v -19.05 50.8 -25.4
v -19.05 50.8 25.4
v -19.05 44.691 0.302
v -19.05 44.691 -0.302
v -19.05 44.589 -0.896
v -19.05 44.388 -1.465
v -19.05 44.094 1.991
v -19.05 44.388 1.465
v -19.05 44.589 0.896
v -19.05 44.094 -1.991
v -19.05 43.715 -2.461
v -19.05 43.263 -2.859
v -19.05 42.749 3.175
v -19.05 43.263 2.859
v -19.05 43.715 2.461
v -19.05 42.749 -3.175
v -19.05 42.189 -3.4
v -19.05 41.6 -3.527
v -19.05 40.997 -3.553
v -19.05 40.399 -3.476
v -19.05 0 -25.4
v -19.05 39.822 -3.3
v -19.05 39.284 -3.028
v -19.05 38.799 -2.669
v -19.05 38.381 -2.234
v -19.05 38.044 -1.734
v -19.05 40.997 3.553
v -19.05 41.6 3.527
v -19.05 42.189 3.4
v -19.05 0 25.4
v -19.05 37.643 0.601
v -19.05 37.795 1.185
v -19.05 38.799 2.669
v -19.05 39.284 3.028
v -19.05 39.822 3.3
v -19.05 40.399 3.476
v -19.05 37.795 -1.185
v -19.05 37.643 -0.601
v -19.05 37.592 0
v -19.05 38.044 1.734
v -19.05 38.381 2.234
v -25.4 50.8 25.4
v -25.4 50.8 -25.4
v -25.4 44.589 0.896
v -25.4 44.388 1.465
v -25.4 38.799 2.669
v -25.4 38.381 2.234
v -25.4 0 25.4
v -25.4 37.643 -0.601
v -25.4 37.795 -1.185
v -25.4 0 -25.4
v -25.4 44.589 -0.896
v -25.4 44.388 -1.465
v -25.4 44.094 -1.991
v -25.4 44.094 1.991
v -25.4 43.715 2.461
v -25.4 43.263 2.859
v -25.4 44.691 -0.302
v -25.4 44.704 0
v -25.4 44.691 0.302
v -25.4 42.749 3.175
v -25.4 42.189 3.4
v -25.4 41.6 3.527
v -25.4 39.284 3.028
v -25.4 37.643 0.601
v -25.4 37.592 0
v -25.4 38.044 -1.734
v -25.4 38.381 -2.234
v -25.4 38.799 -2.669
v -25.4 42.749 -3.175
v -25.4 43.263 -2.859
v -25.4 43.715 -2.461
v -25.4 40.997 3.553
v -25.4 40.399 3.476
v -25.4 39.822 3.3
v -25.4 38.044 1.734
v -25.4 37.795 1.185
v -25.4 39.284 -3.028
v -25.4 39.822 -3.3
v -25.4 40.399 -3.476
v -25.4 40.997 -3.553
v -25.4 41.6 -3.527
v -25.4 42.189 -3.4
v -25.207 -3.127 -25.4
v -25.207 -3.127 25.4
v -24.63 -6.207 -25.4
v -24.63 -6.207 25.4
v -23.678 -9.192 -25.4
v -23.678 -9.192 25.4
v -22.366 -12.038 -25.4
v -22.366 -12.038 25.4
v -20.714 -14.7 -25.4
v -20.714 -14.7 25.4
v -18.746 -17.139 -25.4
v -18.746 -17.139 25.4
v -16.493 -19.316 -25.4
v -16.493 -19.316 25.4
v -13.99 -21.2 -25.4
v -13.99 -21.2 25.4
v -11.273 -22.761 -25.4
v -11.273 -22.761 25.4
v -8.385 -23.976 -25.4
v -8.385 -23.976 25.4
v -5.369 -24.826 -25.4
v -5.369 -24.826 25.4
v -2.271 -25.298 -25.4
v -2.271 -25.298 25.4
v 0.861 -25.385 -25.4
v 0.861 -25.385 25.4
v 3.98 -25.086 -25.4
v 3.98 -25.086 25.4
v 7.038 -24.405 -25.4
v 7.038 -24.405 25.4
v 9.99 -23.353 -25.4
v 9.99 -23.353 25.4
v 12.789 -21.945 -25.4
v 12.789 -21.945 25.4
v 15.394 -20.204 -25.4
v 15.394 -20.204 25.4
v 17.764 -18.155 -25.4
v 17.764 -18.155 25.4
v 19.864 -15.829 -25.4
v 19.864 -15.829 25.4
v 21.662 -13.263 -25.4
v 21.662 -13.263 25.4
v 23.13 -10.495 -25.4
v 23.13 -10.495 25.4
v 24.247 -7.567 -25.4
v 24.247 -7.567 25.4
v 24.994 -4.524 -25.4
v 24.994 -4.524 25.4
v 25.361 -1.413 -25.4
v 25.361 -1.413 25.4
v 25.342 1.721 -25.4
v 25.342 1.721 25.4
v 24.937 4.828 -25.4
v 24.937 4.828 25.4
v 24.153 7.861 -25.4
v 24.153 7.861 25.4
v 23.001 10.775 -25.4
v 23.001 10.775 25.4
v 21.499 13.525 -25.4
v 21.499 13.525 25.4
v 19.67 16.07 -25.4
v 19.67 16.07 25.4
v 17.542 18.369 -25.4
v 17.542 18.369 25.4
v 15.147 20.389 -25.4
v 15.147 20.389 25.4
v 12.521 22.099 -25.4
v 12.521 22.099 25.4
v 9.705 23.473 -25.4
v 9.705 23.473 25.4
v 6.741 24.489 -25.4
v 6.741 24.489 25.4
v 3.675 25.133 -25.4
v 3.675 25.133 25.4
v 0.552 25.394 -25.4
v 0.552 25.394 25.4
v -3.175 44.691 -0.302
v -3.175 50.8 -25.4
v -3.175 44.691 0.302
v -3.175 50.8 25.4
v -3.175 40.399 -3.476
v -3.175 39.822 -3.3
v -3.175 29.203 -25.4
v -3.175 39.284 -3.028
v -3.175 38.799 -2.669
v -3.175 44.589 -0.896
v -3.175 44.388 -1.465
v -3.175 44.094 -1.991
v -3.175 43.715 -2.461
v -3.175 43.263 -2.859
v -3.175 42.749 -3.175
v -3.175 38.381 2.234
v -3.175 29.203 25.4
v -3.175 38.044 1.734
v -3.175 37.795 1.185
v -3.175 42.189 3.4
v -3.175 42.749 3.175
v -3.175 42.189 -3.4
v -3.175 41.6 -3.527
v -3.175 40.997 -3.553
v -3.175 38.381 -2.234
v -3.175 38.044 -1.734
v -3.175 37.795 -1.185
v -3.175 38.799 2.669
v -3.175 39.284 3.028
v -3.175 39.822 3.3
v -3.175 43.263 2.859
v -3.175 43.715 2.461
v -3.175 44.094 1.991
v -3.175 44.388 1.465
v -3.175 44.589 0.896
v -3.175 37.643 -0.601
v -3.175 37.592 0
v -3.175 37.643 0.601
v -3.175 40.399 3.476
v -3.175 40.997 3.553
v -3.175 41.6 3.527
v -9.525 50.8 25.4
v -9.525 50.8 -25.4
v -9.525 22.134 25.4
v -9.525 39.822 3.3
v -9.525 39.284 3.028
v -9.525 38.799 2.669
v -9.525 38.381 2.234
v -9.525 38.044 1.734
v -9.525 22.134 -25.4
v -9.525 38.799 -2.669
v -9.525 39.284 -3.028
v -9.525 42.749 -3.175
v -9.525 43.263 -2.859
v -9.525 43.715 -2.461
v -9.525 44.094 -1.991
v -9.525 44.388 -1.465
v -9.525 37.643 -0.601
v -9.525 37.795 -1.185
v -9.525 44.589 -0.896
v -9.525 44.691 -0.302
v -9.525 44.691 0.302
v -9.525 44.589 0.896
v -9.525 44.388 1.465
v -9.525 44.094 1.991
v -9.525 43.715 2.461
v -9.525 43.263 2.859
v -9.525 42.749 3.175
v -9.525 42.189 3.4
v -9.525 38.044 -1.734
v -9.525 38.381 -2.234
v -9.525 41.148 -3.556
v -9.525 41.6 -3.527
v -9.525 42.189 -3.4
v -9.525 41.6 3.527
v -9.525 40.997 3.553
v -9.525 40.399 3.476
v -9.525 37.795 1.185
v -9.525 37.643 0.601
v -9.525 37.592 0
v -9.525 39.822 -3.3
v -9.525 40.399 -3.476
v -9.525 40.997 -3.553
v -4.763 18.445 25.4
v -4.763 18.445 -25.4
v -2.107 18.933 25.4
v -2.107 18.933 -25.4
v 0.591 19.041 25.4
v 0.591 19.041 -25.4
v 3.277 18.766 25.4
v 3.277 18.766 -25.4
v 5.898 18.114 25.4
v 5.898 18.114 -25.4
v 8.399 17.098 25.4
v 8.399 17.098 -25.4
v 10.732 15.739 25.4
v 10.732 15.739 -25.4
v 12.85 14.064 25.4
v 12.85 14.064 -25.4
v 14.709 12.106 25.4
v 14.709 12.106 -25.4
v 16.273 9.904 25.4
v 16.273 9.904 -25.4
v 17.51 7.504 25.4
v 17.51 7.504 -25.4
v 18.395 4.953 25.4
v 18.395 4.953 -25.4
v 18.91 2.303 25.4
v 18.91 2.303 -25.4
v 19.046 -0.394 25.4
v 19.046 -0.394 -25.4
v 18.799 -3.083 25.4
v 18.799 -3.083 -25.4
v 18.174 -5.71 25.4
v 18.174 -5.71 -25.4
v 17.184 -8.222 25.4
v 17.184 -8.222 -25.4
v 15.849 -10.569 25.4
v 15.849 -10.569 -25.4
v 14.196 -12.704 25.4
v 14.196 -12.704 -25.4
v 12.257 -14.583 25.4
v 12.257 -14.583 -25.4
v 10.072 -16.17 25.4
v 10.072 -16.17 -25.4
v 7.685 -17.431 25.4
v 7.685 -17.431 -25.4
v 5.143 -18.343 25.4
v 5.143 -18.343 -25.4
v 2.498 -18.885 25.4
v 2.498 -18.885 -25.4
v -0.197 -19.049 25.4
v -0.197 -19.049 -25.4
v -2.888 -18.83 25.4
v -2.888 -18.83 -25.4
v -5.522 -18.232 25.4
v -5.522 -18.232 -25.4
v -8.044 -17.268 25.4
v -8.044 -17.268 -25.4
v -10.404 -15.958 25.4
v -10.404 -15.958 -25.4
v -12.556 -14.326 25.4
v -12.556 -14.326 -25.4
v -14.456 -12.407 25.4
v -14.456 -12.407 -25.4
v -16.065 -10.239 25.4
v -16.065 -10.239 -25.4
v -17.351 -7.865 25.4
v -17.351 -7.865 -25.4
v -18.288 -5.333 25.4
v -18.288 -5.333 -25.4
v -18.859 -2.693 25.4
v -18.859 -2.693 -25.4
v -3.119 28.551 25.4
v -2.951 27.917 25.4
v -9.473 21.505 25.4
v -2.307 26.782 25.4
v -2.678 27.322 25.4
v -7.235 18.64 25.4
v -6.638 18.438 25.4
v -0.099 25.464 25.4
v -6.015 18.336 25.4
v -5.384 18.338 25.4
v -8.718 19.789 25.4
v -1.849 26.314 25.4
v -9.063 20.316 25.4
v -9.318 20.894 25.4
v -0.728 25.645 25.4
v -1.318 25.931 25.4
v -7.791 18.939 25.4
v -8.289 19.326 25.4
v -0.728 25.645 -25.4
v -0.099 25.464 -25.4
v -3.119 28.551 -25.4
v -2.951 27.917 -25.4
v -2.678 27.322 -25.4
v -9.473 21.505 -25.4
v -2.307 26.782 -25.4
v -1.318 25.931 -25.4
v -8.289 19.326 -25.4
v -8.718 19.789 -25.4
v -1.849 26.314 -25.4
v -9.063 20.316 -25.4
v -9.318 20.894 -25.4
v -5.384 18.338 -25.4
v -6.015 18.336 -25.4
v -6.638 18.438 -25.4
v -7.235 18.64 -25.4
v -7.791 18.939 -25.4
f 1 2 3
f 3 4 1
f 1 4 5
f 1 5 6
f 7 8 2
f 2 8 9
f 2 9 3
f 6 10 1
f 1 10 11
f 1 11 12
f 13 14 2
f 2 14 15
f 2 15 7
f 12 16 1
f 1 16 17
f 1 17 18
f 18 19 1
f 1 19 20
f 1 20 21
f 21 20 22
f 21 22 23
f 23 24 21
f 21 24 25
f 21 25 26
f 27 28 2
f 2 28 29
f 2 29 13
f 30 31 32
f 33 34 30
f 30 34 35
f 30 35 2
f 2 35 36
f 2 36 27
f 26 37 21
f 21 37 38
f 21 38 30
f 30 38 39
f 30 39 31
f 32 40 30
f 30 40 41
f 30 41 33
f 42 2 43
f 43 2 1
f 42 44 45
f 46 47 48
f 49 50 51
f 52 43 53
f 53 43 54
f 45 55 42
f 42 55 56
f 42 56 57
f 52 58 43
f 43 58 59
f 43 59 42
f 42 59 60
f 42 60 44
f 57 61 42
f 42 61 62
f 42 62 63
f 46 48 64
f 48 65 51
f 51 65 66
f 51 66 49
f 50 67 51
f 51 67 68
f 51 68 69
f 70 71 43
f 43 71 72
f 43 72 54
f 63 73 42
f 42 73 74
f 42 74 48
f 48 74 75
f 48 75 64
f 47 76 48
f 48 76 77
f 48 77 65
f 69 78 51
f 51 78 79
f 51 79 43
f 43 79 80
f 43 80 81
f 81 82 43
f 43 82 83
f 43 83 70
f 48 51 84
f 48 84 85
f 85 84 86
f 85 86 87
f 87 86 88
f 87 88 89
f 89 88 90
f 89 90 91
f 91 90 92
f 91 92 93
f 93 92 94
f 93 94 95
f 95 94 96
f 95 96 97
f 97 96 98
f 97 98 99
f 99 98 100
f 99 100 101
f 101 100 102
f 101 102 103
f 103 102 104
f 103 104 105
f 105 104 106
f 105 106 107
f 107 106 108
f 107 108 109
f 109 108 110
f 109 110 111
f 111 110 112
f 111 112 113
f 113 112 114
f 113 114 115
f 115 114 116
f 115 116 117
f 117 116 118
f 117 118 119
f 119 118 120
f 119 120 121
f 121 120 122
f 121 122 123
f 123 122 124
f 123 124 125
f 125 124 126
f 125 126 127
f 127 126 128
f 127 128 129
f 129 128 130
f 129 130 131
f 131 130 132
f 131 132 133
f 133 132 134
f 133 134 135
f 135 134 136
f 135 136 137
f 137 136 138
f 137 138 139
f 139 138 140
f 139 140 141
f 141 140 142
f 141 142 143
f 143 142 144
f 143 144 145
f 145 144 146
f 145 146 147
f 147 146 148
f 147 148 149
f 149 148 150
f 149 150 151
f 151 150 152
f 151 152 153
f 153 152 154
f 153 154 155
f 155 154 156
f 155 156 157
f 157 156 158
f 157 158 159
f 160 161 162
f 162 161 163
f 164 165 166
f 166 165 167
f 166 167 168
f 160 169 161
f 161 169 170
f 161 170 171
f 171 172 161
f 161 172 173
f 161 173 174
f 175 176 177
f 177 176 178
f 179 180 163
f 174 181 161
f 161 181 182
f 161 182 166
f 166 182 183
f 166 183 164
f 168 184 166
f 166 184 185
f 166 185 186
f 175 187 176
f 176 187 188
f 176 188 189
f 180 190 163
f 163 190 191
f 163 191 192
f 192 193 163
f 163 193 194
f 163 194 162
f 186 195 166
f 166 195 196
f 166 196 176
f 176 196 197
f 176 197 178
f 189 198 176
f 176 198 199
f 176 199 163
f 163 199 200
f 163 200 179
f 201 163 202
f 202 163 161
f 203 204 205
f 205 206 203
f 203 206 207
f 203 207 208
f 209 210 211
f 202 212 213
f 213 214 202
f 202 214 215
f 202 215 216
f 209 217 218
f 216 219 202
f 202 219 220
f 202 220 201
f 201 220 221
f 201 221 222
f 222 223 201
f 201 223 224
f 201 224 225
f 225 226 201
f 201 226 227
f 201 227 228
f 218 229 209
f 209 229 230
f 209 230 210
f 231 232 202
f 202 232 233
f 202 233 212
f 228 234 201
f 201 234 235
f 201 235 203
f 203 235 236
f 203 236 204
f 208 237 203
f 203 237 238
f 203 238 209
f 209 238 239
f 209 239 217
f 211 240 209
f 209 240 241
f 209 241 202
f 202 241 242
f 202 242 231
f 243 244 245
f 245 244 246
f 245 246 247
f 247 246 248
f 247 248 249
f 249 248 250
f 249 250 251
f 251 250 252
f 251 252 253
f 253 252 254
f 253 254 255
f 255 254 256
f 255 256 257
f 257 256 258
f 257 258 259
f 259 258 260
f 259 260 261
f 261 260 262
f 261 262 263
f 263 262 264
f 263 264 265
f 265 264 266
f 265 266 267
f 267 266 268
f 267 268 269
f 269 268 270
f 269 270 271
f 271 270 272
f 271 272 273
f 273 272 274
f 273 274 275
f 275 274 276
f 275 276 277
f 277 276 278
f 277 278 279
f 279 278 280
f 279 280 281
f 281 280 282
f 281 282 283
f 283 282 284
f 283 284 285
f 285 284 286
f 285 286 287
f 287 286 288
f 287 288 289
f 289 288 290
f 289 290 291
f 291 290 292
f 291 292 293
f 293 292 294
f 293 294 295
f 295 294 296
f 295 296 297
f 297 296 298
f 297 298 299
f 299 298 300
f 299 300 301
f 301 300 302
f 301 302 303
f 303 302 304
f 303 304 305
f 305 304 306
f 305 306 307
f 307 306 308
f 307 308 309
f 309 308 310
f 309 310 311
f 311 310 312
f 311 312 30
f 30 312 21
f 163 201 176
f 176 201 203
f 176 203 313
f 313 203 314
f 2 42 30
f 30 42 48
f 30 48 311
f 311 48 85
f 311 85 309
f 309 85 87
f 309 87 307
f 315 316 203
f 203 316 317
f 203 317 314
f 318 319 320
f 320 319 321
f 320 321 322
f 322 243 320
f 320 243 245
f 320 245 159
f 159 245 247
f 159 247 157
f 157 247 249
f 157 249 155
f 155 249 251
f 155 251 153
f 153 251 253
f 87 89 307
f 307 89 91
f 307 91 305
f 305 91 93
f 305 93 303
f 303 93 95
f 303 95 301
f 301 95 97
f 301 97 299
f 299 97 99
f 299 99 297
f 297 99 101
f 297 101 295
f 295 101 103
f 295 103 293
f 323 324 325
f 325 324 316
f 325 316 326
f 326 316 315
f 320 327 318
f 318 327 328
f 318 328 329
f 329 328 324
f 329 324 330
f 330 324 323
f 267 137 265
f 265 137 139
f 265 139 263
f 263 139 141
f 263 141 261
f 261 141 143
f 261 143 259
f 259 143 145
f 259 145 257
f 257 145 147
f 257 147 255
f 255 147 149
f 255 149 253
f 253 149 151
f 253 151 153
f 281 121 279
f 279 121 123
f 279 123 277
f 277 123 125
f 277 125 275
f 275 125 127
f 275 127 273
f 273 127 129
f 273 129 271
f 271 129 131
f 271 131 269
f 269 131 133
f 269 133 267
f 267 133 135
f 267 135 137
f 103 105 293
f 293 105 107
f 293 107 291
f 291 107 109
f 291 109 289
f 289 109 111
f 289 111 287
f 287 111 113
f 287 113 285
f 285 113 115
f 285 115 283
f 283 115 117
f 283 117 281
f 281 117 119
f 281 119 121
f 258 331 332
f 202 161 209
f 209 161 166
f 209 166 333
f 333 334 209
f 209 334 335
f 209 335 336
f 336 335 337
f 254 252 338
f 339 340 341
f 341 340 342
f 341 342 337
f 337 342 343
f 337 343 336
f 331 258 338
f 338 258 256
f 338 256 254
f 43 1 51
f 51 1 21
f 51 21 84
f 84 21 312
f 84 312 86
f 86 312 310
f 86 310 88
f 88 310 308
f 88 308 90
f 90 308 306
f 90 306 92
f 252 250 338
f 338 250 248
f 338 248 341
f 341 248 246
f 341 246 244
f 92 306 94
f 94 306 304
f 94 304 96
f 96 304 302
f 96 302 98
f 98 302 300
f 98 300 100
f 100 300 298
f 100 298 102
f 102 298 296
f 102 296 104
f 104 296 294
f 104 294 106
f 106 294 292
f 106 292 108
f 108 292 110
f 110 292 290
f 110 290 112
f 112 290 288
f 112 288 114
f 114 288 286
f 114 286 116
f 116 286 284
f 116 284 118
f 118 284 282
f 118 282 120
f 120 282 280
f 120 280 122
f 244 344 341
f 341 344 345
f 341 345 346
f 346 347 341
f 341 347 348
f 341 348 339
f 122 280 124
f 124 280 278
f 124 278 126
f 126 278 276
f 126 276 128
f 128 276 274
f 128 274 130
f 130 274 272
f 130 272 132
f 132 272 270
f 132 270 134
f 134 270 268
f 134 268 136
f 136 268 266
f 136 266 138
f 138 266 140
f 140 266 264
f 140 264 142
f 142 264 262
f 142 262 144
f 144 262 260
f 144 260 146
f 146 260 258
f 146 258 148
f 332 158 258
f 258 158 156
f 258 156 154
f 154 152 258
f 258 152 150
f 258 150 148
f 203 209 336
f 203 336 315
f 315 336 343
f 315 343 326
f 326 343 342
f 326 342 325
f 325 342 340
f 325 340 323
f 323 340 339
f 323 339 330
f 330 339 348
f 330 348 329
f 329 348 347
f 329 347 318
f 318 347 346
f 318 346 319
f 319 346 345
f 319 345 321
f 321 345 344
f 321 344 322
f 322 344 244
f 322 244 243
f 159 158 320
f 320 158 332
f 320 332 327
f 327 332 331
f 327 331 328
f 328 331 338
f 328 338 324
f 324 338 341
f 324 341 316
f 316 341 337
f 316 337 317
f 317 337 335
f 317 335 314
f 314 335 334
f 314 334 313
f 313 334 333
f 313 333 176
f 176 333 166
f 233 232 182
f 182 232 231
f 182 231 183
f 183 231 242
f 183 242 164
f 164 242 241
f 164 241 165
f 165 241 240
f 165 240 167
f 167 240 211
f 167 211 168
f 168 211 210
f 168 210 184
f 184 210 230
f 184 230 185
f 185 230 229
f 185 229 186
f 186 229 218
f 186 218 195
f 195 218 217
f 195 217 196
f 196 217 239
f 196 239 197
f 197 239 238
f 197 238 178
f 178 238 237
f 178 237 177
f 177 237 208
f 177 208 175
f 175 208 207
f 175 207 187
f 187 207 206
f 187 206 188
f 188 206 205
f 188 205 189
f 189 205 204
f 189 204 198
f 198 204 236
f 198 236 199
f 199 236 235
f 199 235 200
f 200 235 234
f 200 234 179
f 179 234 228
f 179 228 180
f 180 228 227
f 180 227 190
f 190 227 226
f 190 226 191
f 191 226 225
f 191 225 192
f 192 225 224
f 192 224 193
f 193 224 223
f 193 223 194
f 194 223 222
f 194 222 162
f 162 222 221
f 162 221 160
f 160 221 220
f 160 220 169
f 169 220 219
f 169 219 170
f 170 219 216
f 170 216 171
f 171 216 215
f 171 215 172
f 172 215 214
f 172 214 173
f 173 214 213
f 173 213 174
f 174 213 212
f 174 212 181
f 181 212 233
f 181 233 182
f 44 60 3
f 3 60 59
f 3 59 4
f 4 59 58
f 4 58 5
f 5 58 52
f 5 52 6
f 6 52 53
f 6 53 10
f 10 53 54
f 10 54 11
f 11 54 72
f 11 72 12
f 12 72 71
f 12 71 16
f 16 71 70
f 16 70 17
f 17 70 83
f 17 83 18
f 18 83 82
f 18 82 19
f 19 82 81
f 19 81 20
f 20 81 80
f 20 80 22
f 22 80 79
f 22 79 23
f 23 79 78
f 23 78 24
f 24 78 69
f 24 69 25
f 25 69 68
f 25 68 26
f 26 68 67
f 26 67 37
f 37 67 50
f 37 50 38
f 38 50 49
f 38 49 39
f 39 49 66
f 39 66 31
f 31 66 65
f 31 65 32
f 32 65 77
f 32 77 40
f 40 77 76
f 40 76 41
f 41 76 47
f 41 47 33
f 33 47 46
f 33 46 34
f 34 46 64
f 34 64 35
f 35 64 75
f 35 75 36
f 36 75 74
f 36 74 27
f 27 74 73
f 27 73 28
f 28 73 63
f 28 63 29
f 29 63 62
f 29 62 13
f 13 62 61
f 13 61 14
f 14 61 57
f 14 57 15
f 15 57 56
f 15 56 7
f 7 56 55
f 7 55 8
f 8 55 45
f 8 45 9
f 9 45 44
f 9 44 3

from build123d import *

# Parameters (mm, degrees)
BOSS_EXTRUDE1_DEPTH     = 25.4
FILLET1_R               = 3.81
FILLET2_R               = 3.81
CUT_EXTRUDE1_DEPTH      = 77.2
CUT_EXTRUDE1_DEPTH_BACK = 77.2
SKETCH2_R               = 3.556


with BuildPart() as part:
    # Sketch1 → Boss-Extrude1 (new, symmetric)
    with BuildSketch(Plane.XY):
        with BuildLine():
            Line((-19.05, 50.8), (-25.4, 50.8))
            Line((-25.4, 50.8), (-25.4, 0))
            ThreePointArc((-25.4, 0), (19.05, -16.800520825), (-3.175, 25.200781238))
            Line((-3.175, 25.200781238), (-3.175, 50.8))
            Line((-3.175, 50.8), (-9.525, 50.8))
            Line((-9.525, 50.8), (-9.525, 16.497783942))
            ThreePointArc((-9.525, 16.497783942), (16.497783942, -9.525), (-19.05, 0))
            Line((-19.05, 0), (-19.05, 50.8))
        make_face()
    extrude(amount=BOSS_EXTRUDE1_DEPTH, both=True)

    # Fillet1
    fillet1_edges = [part.edges().sort_by_distance(p)[0] for p in [
        (-9.525, 16.497783942, 0),
    ]]
    fillet(fillet1_edges, radius=FILLET1_R)

    # Fillet2
    fillet2_edges = [part.edges().sort_by_distance(p)[0] for p in [
        (-3.175, 25.200781238, 0),
    ]]
    fillet(fillet2_edges, radius=FILLET2_R)

    # Sketch2 → Cut-Extrude1 (cut, two sides: drawn at the far end of the back side and taken through both)
    with BuildSketch(Plane.ZY.offset(25.4).offset(-CUT_EXTRUDE1_DEPTH_BACK)):
        with Locations(Location((0, 41.148, 0), (0, 0, 270))):
            Circle(SKETCH2_R)
    extrude(amount=CUT_EXTRUDE1_DEPTH + CUT_EXTRUDE1_DEPTH_BACK, mode=Mode.SUBTRACT)


solid = part.part
